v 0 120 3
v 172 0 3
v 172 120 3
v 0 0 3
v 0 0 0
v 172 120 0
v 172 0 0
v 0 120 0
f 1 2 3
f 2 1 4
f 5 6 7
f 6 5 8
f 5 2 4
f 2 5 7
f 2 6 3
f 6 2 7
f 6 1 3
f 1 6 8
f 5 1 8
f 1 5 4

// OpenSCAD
// REFERENCIA COMERCIAL: NAO IMPRIMIR ESTE MODELO
cube([172,120,3]);
